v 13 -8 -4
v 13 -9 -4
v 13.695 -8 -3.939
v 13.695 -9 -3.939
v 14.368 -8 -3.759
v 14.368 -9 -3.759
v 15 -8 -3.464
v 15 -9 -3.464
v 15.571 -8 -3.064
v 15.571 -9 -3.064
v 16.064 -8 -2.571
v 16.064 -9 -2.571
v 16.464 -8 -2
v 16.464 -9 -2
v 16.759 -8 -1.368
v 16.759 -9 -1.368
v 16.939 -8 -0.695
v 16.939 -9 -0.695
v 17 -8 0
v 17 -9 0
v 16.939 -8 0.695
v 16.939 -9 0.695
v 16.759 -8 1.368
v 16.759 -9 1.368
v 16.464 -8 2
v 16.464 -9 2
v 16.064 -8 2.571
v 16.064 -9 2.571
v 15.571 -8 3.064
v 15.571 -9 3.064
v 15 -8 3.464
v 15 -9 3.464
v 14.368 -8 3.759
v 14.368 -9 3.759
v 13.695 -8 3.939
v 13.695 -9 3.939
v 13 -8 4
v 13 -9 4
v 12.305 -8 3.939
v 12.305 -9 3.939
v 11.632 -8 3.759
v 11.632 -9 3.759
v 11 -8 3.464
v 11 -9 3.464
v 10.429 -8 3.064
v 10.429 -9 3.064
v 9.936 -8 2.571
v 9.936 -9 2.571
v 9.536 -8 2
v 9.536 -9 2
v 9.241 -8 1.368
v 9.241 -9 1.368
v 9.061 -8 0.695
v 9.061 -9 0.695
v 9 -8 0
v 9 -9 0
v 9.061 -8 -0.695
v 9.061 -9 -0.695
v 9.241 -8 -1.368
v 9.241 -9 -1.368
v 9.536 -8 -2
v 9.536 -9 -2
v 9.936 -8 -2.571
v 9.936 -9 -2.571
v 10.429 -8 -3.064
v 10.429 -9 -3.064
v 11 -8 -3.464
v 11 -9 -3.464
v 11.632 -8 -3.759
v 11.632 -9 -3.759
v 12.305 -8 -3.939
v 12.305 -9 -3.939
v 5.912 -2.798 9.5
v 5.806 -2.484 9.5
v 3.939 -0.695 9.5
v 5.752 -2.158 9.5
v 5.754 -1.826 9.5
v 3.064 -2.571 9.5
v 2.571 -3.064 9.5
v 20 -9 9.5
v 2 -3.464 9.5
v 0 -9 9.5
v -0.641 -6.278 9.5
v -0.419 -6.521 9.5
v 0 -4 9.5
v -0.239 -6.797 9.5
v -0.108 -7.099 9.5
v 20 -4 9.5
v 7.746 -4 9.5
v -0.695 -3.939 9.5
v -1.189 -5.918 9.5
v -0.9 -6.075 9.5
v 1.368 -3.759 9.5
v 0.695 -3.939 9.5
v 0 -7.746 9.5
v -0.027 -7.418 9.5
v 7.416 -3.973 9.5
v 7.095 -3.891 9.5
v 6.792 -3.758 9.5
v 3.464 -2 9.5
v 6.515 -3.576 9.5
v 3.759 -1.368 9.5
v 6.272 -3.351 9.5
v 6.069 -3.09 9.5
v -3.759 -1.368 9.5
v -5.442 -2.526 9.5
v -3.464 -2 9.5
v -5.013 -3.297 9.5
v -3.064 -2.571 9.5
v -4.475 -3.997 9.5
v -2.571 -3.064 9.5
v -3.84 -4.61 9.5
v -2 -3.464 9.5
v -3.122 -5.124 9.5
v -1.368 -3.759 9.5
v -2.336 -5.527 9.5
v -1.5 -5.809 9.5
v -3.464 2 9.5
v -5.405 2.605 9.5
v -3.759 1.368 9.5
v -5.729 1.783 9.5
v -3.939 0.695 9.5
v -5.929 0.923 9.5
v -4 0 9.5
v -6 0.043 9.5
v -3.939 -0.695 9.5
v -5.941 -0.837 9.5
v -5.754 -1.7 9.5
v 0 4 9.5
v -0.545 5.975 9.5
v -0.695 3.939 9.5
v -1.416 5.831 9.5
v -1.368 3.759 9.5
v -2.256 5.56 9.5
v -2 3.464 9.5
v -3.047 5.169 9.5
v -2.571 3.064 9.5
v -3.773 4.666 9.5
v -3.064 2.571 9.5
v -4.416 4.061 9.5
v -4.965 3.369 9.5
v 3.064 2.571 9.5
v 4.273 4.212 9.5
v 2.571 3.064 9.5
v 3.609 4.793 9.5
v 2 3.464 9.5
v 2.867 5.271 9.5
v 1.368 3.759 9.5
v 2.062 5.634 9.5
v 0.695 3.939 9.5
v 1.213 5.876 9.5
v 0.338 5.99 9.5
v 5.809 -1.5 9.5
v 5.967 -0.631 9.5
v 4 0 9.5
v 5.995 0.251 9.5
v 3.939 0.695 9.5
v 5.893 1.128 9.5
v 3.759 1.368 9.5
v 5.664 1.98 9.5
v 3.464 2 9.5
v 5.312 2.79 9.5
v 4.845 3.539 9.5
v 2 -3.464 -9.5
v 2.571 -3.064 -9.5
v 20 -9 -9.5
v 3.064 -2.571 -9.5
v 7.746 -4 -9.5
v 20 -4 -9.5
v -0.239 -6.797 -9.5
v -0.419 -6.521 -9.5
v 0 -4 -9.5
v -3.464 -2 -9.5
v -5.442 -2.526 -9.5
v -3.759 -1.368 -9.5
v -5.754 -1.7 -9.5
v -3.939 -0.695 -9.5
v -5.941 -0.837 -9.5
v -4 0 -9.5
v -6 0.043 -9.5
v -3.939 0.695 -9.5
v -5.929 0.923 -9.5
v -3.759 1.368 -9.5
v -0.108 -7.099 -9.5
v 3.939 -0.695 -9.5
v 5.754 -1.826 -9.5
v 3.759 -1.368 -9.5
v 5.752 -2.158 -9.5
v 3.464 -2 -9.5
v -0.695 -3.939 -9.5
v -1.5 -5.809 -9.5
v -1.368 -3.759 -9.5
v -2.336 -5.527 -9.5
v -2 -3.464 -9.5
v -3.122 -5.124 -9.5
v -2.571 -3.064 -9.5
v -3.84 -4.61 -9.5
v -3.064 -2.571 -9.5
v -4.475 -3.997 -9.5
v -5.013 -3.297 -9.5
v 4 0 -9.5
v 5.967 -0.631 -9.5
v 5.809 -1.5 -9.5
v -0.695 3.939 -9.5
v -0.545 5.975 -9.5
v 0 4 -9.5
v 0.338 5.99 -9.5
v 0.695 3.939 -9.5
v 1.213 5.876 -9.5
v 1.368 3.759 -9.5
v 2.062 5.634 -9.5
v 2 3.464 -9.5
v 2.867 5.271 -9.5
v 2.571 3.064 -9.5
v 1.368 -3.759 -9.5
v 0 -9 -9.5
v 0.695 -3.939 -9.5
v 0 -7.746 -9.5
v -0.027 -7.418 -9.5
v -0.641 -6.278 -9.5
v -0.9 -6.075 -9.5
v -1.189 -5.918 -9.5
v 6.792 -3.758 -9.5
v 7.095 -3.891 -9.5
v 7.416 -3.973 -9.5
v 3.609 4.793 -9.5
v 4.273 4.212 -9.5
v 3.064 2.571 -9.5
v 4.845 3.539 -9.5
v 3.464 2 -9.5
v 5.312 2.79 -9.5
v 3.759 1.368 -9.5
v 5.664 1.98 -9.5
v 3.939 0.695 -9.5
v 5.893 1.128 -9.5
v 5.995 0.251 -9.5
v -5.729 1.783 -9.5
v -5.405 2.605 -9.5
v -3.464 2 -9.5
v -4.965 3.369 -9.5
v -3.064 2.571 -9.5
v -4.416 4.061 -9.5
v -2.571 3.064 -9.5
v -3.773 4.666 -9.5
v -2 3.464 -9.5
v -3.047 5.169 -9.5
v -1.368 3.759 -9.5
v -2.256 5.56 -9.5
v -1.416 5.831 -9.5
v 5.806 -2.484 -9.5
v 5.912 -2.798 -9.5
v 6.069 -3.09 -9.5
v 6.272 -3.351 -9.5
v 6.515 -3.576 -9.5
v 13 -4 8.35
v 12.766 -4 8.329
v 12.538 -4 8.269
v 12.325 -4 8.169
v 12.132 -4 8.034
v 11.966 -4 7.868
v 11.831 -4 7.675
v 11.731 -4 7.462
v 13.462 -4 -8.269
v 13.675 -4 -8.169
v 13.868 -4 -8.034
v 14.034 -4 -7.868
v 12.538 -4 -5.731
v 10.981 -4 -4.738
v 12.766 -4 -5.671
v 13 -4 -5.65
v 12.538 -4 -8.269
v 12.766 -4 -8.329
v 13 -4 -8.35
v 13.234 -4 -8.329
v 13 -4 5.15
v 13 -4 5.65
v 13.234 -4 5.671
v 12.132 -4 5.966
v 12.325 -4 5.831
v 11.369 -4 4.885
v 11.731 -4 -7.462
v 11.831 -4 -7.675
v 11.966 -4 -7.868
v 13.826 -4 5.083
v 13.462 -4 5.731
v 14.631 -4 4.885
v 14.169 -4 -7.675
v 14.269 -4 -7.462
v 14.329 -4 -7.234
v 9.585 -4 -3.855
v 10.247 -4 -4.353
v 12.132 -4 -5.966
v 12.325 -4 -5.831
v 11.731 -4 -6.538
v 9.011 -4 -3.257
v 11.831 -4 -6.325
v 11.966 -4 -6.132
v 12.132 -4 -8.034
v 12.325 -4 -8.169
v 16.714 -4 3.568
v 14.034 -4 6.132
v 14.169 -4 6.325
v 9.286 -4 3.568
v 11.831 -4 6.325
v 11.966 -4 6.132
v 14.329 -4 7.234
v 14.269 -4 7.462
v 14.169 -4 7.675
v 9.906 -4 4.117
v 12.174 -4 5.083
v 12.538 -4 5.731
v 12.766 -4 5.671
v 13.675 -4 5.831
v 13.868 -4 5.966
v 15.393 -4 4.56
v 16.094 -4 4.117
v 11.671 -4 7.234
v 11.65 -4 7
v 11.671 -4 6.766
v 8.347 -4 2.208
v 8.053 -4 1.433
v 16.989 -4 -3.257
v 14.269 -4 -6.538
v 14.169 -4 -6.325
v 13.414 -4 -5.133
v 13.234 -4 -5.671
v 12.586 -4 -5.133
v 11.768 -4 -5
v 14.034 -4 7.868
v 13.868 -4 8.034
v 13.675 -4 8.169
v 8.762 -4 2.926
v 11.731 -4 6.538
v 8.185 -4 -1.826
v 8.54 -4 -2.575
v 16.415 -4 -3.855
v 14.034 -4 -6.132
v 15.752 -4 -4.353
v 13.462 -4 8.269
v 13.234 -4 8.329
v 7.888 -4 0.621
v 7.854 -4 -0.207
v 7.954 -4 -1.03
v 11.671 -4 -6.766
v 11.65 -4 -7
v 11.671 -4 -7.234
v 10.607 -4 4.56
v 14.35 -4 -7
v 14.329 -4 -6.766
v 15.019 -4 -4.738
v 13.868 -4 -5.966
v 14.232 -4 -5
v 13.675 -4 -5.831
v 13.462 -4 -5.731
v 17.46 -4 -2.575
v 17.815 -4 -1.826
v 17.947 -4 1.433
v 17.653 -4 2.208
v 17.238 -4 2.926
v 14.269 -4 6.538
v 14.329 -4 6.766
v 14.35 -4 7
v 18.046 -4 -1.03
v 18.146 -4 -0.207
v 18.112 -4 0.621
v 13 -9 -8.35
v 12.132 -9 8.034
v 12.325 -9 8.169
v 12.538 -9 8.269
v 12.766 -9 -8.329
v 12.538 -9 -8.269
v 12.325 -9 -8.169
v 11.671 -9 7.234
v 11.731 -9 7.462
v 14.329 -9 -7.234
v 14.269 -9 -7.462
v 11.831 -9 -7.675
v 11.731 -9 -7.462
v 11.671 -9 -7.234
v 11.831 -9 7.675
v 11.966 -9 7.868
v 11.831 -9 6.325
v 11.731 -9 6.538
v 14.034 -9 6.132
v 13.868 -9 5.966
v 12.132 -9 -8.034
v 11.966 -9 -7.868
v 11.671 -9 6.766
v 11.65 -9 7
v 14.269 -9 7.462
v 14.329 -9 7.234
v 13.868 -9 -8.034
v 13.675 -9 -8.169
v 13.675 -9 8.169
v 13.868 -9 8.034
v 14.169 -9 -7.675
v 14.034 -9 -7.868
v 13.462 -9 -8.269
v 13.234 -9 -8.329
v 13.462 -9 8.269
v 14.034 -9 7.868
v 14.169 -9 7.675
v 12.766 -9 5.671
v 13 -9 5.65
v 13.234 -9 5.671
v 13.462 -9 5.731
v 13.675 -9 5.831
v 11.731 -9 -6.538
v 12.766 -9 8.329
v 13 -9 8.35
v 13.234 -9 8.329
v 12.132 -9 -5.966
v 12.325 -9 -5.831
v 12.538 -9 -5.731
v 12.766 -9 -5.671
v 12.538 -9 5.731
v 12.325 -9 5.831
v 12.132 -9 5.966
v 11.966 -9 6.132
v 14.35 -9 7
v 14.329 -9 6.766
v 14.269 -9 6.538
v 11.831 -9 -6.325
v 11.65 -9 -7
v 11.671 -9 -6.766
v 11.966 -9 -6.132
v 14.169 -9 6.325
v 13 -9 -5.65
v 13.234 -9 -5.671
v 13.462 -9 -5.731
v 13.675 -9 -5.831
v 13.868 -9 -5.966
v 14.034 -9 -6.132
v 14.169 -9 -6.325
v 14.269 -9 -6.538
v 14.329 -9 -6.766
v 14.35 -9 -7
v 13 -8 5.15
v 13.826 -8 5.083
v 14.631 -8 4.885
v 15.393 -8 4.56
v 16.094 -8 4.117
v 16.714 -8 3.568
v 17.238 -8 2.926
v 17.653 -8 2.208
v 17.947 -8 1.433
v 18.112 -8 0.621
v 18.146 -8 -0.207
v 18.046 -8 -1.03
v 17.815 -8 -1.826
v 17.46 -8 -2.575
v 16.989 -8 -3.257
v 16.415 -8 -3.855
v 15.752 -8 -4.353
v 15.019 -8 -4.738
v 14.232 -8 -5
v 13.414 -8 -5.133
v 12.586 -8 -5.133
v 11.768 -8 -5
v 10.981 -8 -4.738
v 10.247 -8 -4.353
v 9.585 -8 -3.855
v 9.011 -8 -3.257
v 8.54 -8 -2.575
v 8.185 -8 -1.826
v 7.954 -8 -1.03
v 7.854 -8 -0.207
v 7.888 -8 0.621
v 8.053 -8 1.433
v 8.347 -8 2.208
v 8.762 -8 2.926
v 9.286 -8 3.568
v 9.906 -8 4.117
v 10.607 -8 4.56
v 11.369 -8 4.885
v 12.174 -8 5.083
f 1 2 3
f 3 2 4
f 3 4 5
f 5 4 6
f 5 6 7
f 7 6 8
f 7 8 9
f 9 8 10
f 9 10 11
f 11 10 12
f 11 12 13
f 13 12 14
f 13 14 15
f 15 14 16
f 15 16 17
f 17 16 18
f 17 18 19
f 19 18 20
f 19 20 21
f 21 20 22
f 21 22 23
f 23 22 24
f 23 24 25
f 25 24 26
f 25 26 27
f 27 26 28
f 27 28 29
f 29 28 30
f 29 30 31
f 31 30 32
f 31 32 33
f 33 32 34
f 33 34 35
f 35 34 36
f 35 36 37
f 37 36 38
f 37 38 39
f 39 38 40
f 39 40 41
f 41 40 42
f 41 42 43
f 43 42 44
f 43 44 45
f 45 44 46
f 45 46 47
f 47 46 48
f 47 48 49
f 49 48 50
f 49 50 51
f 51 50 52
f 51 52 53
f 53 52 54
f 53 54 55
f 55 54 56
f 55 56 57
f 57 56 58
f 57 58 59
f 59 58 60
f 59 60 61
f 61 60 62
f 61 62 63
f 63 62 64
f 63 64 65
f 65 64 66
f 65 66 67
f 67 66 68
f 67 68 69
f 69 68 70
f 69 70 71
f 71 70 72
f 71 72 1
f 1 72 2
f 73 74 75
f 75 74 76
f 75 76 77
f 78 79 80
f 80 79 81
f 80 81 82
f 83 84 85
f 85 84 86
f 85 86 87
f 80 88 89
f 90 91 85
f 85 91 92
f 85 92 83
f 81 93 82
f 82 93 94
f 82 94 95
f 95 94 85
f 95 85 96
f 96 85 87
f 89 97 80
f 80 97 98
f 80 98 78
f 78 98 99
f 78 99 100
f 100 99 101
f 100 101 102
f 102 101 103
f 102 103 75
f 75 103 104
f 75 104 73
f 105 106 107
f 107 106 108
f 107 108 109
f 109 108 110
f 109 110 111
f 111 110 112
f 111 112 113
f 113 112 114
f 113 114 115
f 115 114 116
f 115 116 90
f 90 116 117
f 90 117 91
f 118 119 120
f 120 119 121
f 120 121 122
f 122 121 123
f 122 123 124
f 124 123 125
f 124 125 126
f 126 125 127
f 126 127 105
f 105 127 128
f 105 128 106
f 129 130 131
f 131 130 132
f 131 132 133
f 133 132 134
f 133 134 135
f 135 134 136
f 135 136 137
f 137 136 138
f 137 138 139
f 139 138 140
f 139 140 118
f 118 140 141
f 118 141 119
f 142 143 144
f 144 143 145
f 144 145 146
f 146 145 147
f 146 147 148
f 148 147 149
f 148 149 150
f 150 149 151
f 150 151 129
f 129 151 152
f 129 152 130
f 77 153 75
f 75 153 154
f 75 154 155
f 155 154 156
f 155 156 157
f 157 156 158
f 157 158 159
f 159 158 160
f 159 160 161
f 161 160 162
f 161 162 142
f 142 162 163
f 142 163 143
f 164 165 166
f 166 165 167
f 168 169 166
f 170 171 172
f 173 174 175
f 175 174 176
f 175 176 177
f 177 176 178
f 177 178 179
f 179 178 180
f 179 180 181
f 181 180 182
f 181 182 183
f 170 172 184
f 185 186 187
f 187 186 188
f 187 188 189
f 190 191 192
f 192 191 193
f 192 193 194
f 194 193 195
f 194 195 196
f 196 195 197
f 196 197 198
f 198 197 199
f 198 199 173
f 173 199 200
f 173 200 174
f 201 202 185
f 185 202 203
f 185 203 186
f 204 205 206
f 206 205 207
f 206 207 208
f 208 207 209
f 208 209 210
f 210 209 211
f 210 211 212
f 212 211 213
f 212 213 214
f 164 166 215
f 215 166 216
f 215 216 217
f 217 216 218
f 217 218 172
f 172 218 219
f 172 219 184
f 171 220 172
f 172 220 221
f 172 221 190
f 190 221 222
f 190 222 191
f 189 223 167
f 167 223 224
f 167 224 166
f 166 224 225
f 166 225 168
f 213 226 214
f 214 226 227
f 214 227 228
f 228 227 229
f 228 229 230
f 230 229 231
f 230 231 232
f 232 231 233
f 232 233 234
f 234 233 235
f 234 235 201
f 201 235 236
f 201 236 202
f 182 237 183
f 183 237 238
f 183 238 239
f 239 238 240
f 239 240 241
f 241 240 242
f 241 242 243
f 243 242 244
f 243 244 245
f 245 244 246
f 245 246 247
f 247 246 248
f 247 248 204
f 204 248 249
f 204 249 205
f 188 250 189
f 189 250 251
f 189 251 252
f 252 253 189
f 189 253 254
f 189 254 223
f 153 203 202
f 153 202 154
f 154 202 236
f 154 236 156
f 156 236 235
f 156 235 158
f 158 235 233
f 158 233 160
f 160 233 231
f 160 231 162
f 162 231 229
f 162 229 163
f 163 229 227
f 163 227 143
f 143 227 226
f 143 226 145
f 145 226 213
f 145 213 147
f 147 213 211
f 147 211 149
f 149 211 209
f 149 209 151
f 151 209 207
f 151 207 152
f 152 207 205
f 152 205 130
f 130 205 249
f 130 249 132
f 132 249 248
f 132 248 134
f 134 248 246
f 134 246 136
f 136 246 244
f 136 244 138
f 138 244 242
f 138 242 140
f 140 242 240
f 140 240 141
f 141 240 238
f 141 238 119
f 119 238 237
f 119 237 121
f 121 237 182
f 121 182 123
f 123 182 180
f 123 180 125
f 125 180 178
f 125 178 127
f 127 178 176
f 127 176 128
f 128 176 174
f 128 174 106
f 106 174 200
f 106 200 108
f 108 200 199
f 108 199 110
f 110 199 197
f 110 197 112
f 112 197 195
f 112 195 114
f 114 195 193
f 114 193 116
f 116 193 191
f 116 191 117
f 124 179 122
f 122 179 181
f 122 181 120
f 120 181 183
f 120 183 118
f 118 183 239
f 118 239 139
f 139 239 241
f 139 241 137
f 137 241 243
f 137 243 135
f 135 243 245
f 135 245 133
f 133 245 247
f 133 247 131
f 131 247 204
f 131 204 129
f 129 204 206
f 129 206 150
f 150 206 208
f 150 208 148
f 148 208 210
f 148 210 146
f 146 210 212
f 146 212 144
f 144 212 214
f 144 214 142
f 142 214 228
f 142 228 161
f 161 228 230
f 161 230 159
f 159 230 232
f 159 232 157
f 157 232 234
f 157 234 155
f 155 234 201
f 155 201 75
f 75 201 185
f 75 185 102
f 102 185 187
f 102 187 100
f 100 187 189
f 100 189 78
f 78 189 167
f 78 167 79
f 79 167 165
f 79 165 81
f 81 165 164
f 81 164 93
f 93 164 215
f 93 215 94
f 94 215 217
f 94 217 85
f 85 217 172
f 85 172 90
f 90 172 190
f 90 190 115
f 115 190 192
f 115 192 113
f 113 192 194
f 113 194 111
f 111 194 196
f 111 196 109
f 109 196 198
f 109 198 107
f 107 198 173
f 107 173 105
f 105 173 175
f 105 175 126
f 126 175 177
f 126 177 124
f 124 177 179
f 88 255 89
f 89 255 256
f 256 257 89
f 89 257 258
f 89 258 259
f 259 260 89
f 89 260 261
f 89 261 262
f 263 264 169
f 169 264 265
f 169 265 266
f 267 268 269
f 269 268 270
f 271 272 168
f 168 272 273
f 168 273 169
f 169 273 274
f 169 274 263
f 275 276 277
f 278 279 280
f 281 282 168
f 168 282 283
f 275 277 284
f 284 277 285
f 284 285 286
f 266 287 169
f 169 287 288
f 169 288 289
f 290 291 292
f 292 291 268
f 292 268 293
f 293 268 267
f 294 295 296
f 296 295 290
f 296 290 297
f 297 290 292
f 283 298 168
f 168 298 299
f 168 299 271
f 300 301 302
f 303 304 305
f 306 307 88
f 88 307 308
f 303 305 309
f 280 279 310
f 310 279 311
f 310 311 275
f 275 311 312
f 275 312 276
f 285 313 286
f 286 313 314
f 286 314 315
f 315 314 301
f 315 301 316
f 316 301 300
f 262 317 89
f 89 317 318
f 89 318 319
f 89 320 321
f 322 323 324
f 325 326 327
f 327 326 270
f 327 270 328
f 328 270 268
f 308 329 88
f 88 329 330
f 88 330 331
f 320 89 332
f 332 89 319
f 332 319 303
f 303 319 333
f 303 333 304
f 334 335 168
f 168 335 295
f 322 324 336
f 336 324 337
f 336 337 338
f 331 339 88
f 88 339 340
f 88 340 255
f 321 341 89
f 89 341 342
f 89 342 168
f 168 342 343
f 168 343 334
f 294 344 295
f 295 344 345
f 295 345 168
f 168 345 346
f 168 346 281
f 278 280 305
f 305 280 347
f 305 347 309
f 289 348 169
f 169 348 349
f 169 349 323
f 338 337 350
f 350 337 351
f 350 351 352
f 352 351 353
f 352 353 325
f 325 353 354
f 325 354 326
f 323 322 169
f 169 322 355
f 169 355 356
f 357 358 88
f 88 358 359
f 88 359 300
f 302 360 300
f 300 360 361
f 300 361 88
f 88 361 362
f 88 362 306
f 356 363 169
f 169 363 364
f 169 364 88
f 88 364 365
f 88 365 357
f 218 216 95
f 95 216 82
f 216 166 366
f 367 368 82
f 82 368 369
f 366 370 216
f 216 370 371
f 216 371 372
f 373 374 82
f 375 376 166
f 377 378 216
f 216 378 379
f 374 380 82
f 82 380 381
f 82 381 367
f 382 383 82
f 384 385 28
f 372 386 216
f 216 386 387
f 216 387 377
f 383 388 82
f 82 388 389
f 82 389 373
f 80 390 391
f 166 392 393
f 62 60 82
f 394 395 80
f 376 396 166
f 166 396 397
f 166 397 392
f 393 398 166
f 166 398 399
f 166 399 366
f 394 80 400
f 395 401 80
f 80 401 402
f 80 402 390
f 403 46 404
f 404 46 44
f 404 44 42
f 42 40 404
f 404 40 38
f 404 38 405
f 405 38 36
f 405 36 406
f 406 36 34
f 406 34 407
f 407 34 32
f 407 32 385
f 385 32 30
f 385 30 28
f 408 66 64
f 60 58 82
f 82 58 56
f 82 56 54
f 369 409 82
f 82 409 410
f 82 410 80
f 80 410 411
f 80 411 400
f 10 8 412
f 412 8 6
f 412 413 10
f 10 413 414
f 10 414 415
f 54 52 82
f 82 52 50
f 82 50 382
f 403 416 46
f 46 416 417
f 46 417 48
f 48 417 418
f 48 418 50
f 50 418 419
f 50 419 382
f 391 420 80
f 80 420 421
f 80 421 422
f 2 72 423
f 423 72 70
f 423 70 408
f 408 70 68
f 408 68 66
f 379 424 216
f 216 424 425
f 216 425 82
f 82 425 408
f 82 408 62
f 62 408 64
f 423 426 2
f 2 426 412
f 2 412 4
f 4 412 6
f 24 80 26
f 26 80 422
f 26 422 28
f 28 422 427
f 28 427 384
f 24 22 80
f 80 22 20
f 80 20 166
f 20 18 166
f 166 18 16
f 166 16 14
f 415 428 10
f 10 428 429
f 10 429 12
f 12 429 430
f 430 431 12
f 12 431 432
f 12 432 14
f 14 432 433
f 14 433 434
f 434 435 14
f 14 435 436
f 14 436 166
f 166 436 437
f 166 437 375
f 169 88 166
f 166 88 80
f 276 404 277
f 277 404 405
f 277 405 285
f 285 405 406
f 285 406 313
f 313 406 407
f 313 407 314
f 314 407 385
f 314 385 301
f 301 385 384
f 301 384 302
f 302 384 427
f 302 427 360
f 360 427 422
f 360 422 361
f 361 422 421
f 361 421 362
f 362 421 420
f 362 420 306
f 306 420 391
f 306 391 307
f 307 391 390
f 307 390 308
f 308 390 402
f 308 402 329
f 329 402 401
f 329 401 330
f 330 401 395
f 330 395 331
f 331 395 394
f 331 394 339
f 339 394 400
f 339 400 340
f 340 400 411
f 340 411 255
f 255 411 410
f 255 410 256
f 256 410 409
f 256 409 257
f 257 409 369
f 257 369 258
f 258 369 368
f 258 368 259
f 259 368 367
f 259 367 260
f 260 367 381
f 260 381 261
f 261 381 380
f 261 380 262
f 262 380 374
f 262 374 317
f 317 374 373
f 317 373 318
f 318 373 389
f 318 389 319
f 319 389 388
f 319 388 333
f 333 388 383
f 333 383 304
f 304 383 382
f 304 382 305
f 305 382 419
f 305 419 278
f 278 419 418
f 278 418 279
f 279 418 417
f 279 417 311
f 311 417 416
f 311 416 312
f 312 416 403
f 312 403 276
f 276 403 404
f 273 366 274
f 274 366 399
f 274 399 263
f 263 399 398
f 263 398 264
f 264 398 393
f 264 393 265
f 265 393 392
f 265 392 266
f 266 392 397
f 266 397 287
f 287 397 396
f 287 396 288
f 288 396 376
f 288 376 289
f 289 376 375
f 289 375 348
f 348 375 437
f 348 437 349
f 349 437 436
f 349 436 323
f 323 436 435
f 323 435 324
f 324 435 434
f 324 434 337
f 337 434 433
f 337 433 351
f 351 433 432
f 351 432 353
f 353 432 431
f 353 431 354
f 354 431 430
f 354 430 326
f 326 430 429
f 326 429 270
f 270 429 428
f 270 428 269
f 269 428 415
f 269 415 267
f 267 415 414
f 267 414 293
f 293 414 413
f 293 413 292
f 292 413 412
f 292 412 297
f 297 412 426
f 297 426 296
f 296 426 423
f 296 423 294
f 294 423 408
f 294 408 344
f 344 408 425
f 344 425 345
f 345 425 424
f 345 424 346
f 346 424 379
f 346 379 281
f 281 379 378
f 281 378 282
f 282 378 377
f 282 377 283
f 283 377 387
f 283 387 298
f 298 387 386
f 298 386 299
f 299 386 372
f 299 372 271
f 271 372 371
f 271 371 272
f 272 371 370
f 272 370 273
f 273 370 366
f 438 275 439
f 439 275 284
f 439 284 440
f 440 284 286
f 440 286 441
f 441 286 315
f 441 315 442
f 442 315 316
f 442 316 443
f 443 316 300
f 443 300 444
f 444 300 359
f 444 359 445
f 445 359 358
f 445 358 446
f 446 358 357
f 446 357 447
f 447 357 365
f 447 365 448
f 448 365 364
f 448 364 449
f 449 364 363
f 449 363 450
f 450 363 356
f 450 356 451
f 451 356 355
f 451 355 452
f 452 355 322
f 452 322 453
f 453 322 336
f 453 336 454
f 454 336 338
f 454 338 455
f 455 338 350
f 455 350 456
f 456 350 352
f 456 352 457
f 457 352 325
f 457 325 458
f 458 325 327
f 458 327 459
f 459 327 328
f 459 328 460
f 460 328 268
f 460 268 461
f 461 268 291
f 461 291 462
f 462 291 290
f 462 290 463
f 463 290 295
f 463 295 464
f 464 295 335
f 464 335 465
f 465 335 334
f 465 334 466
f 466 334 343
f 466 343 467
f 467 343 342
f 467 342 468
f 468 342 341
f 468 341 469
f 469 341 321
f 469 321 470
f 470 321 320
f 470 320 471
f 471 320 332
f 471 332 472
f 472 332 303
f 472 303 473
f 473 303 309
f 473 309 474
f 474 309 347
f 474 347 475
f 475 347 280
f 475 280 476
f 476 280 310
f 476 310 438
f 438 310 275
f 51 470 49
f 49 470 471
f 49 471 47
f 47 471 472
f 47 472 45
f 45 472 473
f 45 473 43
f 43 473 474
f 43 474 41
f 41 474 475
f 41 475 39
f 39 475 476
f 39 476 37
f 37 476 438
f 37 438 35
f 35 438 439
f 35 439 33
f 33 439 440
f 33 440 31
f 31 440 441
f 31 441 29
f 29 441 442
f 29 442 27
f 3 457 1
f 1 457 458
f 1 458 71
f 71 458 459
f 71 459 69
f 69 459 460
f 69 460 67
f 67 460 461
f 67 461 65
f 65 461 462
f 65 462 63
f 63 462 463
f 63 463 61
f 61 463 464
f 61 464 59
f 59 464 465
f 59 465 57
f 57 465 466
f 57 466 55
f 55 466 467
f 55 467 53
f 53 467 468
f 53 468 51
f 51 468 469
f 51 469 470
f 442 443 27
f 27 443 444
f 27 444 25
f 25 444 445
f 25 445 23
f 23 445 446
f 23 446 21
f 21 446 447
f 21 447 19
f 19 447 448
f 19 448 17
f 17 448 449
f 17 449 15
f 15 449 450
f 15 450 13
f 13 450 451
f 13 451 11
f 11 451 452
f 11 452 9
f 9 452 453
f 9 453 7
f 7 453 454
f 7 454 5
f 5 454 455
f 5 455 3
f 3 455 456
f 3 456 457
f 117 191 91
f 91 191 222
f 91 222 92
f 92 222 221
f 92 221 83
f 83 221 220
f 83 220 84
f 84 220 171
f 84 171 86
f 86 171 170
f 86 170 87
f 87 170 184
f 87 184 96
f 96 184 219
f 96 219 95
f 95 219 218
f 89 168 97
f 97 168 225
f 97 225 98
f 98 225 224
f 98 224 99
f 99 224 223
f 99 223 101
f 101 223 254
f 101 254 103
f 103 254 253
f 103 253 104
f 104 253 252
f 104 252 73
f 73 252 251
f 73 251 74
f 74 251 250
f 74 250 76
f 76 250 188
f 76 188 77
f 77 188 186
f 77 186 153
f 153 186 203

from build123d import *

# Parameters (mm, degrees)
SKETCH1_R                  = 6
SKETCH1_R_2                = 4
MAIN_DEPTH                 = 9.5
SKETCH2_W                  = 20
SKETCH2_H                  = 19
SKETCH2_R                  = 4
SKETCH2_R_2                = 1.35
BALLSUPPORTEXTRUSION_DEPTH = 5
SKETCH3_R                  = 5.15
BALLSUPPORTHOLE_DEPTH      = 4
FILLET2_R                  = 2


with BuildPart() as part:
    # Sketch1 → Main (new body, symmetric)
    with BuildSketch(Plane.XY):
        Circle(SKETCH1_R)
        Circle(SKETCH1_R_2, mode=Mode.SUBTRACT)
    extrude(amount=MAIN_DEPTH, both=True)

    # Sketch2 → BallSupportExtrusion (add)
    with BuildSketch(Plane(origin=(0, -9, 0), x_dir=(1, 0, 0), z_dir=(0, 1, 0))):
        with Locations((10, 0)):
            Rectangle(SKETCH2_W, SKETCH2_H)
        with Locations((13, 0)):
            Circle(SKETCH2_R, mode=Mode.SUBTRACT)
        with Locations((13, 7)):
            Circle(SKETCH2_R_2, mode=Mode.SUBTRACT)
        with Locations((13, -7)):
            Circle(SKETCH2_R_2, mode=Mode.SUBTRACT)
    extrude(amount=BALLSUPPORTEXTRUSION_DEPTH)

    # Sketch3 → BallSupportHole (cut)
    with BuildSketch(Plane(origin=(0, -4, 0), x_dir=(1, 0, 0), z_dir=(0, 1, 0))):
        with Locations((13, 0)):
            Circle(SKETCH3_R)
    extrude(amount=-BALLSUPPORTHOLE_DEPTH, mode=Mode.SUBTRACT)

    # Fillet2
    fillet2_edges = [part.edges().sort_by_distance(p)[0] for p in [
        (0, -6, 0),
        (4.472135955, -4, 0),
    ]]
    fillet(fillet2_edges, radius=FILLET2_R)


solid = part.part
